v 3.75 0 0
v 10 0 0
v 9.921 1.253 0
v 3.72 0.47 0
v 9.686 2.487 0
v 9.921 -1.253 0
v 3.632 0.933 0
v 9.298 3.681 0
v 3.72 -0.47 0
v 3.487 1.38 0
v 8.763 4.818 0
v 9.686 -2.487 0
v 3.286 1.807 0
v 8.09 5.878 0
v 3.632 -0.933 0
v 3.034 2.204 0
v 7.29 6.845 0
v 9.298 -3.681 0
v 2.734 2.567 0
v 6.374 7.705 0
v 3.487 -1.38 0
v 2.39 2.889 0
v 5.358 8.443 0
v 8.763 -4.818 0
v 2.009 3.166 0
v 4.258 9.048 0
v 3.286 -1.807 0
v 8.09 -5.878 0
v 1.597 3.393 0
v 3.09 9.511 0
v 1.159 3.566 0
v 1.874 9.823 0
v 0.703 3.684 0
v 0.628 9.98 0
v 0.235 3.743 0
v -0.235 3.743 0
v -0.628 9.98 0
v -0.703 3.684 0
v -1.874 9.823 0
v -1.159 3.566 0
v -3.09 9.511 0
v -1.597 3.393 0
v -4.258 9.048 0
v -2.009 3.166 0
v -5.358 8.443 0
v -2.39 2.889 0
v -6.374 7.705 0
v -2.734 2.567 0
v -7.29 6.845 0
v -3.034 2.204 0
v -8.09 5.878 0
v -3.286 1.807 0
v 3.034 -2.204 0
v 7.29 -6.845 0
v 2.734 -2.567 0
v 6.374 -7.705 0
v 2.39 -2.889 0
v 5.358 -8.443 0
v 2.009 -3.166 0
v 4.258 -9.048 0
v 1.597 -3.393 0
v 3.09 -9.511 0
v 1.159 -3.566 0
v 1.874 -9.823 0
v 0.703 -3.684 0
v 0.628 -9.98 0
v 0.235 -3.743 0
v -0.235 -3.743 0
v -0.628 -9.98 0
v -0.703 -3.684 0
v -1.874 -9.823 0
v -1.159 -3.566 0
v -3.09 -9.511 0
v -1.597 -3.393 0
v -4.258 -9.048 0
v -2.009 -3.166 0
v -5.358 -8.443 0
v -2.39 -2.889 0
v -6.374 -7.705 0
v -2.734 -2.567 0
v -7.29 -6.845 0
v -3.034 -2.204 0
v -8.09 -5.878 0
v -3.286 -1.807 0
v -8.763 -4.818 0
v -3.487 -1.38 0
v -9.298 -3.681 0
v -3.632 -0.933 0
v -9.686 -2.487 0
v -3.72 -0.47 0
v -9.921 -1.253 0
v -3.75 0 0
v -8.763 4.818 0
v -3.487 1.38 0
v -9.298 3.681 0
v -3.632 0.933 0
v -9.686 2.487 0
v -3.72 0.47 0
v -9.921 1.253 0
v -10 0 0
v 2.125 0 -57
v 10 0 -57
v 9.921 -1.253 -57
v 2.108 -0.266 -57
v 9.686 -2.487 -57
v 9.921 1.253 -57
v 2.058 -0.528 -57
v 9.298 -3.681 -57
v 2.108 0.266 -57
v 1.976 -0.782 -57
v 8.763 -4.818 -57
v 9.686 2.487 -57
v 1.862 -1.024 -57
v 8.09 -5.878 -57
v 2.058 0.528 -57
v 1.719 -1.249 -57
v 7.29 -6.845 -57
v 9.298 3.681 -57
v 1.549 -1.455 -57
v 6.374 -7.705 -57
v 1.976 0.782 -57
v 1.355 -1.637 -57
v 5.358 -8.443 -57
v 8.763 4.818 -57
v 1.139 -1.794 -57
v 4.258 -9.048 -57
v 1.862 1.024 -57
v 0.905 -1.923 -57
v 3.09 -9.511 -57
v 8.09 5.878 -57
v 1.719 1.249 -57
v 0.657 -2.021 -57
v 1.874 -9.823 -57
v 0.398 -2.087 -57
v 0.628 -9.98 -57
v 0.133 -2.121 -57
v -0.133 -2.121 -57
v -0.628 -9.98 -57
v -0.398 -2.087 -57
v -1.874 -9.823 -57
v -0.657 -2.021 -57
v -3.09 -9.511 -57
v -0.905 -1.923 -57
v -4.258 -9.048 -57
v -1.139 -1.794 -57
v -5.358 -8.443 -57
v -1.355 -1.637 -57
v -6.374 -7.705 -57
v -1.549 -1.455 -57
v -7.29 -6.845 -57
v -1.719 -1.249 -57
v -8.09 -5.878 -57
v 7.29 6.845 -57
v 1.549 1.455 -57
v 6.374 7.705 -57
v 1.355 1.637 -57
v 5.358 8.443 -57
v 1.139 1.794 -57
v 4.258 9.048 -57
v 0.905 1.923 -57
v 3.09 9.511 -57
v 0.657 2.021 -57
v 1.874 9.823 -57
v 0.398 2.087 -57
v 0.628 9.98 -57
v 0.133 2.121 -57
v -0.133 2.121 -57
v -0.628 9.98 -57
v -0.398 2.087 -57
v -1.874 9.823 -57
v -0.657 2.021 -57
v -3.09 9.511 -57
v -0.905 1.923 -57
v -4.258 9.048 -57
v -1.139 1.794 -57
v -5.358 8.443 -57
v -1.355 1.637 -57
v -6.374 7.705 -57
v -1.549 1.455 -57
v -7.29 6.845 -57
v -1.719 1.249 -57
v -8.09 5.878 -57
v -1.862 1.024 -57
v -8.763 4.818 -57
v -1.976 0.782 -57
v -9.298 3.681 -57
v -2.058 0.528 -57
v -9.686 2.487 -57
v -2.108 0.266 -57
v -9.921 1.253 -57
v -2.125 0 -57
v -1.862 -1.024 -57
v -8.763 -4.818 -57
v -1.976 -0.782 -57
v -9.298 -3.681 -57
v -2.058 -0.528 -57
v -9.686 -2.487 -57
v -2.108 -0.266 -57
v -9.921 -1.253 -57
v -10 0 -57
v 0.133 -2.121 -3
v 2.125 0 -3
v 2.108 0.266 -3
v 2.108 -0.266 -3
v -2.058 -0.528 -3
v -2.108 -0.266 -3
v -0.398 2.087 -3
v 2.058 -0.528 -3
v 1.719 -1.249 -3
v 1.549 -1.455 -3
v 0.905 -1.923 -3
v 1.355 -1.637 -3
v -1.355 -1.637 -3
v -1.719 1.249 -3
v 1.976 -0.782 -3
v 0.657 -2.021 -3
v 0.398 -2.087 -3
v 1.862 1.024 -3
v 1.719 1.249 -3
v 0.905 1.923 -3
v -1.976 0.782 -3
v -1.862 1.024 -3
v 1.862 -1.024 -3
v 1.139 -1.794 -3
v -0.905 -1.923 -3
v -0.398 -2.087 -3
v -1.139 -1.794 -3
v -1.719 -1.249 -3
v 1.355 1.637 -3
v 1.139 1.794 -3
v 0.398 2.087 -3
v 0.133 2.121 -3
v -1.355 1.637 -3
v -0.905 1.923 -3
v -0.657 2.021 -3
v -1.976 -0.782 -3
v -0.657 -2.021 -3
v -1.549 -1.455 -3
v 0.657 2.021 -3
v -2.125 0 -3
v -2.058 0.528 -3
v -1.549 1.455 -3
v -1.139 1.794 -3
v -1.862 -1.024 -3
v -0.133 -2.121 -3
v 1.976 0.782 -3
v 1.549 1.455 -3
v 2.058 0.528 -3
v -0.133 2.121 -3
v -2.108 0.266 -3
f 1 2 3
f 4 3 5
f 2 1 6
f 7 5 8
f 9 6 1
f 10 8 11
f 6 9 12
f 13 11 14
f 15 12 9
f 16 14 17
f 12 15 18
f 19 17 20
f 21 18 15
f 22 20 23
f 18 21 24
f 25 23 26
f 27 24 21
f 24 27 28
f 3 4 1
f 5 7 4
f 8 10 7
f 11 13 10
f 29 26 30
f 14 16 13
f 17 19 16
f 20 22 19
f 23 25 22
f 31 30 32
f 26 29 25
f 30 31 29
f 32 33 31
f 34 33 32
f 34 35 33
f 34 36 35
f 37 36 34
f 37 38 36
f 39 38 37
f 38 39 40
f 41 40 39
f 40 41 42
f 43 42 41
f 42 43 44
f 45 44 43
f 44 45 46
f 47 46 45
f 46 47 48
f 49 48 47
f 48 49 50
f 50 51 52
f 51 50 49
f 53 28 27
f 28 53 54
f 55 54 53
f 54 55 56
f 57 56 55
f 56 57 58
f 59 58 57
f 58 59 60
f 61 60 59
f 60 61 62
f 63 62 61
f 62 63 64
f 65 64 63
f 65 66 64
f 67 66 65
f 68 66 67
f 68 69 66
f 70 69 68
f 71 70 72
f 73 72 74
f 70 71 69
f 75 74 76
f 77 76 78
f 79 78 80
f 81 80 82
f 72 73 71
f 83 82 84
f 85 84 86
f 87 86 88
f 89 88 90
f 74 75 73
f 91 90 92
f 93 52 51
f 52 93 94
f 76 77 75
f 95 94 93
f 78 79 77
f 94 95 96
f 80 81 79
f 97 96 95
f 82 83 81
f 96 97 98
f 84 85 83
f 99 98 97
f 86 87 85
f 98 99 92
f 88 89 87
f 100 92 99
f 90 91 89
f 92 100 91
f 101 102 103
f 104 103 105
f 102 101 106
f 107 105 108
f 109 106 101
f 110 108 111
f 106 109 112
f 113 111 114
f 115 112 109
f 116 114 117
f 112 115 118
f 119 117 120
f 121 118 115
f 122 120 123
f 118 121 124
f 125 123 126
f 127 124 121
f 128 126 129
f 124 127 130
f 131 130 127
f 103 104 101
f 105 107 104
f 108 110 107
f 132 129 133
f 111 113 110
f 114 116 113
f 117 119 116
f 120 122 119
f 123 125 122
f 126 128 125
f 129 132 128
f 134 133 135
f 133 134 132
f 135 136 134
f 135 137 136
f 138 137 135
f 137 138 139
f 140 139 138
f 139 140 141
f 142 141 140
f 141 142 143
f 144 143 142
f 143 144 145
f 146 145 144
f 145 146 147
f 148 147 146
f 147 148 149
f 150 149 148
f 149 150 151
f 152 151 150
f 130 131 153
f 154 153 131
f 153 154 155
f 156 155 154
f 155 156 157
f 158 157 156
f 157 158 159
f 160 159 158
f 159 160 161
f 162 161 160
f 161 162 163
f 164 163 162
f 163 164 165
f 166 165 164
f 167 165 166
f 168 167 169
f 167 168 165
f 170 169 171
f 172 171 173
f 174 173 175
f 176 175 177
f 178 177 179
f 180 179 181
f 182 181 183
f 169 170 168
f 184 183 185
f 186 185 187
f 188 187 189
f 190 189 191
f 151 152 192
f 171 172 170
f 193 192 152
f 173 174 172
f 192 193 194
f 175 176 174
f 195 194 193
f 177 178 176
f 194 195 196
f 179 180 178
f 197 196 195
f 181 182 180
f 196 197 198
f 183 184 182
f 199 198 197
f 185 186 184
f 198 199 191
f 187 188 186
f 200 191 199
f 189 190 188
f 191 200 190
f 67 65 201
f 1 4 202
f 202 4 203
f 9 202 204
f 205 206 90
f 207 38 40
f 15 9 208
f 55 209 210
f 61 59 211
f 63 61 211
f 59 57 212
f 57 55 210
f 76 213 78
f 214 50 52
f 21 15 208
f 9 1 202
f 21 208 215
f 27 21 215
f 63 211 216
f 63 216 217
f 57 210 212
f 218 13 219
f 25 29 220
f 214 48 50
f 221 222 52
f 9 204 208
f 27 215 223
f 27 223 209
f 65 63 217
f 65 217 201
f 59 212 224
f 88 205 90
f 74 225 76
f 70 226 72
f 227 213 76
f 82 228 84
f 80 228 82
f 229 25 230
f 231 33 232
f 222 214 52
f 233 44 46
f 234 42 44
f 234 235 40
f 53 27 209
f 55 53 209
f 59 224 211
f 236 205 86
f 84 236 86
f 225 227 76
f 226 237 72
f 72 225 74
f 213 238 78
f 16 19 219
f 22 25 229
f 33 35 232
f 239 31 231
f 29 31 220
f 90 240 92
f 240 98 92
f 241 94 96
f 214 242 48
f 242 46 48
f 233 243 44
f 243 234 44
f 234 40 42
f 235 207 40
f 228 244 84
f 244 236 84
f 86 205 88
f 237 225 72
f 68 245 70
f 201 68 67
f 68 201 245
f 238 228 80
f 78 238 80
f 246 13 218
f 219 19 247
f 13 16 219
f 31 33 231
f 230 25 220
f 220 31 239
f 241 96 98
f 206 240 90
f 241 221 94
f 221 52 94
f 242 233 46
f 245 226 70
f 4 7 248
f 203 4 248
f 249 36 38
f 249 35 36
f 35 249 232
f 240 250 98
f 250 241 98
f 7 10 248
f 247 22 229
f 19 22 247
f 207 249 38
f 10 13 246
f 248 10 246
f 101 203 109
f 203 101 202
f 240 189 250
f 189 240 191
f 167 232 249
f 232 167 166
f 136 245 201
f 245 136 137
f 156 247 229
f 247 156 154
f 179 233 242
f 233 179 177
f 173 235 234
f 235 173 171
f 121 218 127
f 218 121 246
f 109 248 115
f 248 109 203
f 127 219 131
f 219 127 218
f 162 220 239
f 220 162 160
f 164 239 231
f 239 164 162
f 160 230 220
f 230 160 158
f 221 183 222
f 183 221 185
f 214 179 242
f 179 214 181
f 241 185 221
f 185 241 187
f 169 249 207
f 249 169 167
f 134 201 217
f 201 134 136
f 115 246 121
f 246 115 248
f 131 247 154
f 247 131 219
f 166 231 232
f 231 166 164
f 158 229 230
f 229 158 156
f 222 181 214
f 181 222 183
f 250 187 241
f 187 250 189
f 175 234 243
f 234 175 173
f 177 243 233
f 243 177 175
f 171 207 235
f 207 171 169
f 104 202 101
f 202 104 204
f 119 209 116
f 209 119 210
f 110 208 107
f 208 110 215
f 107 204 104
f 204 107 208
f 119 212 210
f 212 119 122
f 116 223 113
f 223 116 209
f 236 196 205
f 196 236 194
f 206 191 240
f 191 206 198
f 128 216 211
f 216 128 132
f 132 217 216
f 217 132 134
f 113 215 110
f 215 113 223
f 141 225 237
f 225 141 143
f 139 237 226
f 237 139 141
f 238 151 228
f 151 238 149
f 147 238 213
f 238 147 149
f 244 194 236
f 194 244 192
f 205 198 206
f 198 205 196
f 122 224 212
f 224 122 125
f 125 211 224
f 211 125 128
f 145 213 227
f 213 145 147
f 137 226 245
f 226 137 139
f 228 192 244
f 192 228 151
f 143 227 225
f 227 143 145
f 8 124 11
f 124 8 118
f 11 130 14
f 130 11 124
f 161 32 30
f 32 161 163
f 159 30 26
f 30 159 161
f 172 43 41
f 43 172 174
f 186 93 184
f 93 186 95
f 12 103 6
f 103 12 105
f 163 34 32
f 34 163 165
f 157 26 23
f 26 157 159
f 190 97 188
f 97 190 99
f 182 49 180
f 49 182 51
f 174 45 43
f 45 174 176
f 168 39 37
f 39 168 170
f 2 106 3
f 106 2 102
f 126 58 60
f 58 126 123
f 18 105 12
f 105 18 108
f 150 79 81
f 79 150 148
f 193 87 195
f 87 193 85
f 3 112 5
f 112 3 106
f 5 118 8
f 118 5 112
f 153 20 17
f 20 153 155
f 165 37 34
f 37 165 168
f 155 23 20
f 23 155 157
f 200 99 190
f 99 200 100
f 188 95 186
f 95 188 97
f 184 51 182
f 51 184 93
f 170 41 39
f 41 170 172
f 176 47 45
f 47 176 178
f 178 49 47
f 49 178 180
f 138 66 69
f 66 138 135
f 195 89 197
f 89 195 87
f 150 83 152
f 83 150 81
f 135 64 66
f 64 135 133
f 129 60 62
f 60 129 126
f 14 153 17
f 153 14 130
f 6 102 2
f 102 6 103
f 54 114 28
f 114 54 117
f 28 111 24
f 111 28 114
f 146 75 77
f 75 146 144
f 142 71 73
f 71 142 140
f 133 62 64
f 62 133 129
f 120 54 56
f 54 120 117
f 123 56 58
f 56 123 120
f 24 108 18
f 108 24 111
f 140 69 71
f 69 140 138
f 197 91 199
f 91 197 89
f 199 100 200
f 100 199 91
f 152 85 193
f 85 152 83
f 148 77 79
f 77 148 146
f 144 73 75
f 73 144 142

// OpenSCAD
$fn = 50;


difference() {
	union() {
		translate(v = [0, 0, -57.0000000000]) {
			cylinder(h = 57, r = 10.0000000000);
		}
		cylinder(h = 0, r = 13.0000000000);
	}
	union() {
		translate(v = [0, 0, 0]) {
			rotate(a = [0, 0, 0]) {
				difference() {
					union() {
						#translate(v = [0, 0, -57.0000000000]) {
							cylinder(h = 57, r = 2.0000000000);
						}
						#translate(v = [0, 0, -3]) {
							cylinder(h = 3, r = 10.0000000000, r1 = 2.1250000000, r2 = 3.7500000000);
						}
						#translate(v = [0, 0, -57.0000000000]) {
							cylinder(h = 57, r = 2.1250000000);
						}
						#translate(v = [0, 0, -57.0000000000]) {
							cylinder(h = 57, r = 2.0000000000);
						}
					}
					union();
				}
			}
		}
	}
}
